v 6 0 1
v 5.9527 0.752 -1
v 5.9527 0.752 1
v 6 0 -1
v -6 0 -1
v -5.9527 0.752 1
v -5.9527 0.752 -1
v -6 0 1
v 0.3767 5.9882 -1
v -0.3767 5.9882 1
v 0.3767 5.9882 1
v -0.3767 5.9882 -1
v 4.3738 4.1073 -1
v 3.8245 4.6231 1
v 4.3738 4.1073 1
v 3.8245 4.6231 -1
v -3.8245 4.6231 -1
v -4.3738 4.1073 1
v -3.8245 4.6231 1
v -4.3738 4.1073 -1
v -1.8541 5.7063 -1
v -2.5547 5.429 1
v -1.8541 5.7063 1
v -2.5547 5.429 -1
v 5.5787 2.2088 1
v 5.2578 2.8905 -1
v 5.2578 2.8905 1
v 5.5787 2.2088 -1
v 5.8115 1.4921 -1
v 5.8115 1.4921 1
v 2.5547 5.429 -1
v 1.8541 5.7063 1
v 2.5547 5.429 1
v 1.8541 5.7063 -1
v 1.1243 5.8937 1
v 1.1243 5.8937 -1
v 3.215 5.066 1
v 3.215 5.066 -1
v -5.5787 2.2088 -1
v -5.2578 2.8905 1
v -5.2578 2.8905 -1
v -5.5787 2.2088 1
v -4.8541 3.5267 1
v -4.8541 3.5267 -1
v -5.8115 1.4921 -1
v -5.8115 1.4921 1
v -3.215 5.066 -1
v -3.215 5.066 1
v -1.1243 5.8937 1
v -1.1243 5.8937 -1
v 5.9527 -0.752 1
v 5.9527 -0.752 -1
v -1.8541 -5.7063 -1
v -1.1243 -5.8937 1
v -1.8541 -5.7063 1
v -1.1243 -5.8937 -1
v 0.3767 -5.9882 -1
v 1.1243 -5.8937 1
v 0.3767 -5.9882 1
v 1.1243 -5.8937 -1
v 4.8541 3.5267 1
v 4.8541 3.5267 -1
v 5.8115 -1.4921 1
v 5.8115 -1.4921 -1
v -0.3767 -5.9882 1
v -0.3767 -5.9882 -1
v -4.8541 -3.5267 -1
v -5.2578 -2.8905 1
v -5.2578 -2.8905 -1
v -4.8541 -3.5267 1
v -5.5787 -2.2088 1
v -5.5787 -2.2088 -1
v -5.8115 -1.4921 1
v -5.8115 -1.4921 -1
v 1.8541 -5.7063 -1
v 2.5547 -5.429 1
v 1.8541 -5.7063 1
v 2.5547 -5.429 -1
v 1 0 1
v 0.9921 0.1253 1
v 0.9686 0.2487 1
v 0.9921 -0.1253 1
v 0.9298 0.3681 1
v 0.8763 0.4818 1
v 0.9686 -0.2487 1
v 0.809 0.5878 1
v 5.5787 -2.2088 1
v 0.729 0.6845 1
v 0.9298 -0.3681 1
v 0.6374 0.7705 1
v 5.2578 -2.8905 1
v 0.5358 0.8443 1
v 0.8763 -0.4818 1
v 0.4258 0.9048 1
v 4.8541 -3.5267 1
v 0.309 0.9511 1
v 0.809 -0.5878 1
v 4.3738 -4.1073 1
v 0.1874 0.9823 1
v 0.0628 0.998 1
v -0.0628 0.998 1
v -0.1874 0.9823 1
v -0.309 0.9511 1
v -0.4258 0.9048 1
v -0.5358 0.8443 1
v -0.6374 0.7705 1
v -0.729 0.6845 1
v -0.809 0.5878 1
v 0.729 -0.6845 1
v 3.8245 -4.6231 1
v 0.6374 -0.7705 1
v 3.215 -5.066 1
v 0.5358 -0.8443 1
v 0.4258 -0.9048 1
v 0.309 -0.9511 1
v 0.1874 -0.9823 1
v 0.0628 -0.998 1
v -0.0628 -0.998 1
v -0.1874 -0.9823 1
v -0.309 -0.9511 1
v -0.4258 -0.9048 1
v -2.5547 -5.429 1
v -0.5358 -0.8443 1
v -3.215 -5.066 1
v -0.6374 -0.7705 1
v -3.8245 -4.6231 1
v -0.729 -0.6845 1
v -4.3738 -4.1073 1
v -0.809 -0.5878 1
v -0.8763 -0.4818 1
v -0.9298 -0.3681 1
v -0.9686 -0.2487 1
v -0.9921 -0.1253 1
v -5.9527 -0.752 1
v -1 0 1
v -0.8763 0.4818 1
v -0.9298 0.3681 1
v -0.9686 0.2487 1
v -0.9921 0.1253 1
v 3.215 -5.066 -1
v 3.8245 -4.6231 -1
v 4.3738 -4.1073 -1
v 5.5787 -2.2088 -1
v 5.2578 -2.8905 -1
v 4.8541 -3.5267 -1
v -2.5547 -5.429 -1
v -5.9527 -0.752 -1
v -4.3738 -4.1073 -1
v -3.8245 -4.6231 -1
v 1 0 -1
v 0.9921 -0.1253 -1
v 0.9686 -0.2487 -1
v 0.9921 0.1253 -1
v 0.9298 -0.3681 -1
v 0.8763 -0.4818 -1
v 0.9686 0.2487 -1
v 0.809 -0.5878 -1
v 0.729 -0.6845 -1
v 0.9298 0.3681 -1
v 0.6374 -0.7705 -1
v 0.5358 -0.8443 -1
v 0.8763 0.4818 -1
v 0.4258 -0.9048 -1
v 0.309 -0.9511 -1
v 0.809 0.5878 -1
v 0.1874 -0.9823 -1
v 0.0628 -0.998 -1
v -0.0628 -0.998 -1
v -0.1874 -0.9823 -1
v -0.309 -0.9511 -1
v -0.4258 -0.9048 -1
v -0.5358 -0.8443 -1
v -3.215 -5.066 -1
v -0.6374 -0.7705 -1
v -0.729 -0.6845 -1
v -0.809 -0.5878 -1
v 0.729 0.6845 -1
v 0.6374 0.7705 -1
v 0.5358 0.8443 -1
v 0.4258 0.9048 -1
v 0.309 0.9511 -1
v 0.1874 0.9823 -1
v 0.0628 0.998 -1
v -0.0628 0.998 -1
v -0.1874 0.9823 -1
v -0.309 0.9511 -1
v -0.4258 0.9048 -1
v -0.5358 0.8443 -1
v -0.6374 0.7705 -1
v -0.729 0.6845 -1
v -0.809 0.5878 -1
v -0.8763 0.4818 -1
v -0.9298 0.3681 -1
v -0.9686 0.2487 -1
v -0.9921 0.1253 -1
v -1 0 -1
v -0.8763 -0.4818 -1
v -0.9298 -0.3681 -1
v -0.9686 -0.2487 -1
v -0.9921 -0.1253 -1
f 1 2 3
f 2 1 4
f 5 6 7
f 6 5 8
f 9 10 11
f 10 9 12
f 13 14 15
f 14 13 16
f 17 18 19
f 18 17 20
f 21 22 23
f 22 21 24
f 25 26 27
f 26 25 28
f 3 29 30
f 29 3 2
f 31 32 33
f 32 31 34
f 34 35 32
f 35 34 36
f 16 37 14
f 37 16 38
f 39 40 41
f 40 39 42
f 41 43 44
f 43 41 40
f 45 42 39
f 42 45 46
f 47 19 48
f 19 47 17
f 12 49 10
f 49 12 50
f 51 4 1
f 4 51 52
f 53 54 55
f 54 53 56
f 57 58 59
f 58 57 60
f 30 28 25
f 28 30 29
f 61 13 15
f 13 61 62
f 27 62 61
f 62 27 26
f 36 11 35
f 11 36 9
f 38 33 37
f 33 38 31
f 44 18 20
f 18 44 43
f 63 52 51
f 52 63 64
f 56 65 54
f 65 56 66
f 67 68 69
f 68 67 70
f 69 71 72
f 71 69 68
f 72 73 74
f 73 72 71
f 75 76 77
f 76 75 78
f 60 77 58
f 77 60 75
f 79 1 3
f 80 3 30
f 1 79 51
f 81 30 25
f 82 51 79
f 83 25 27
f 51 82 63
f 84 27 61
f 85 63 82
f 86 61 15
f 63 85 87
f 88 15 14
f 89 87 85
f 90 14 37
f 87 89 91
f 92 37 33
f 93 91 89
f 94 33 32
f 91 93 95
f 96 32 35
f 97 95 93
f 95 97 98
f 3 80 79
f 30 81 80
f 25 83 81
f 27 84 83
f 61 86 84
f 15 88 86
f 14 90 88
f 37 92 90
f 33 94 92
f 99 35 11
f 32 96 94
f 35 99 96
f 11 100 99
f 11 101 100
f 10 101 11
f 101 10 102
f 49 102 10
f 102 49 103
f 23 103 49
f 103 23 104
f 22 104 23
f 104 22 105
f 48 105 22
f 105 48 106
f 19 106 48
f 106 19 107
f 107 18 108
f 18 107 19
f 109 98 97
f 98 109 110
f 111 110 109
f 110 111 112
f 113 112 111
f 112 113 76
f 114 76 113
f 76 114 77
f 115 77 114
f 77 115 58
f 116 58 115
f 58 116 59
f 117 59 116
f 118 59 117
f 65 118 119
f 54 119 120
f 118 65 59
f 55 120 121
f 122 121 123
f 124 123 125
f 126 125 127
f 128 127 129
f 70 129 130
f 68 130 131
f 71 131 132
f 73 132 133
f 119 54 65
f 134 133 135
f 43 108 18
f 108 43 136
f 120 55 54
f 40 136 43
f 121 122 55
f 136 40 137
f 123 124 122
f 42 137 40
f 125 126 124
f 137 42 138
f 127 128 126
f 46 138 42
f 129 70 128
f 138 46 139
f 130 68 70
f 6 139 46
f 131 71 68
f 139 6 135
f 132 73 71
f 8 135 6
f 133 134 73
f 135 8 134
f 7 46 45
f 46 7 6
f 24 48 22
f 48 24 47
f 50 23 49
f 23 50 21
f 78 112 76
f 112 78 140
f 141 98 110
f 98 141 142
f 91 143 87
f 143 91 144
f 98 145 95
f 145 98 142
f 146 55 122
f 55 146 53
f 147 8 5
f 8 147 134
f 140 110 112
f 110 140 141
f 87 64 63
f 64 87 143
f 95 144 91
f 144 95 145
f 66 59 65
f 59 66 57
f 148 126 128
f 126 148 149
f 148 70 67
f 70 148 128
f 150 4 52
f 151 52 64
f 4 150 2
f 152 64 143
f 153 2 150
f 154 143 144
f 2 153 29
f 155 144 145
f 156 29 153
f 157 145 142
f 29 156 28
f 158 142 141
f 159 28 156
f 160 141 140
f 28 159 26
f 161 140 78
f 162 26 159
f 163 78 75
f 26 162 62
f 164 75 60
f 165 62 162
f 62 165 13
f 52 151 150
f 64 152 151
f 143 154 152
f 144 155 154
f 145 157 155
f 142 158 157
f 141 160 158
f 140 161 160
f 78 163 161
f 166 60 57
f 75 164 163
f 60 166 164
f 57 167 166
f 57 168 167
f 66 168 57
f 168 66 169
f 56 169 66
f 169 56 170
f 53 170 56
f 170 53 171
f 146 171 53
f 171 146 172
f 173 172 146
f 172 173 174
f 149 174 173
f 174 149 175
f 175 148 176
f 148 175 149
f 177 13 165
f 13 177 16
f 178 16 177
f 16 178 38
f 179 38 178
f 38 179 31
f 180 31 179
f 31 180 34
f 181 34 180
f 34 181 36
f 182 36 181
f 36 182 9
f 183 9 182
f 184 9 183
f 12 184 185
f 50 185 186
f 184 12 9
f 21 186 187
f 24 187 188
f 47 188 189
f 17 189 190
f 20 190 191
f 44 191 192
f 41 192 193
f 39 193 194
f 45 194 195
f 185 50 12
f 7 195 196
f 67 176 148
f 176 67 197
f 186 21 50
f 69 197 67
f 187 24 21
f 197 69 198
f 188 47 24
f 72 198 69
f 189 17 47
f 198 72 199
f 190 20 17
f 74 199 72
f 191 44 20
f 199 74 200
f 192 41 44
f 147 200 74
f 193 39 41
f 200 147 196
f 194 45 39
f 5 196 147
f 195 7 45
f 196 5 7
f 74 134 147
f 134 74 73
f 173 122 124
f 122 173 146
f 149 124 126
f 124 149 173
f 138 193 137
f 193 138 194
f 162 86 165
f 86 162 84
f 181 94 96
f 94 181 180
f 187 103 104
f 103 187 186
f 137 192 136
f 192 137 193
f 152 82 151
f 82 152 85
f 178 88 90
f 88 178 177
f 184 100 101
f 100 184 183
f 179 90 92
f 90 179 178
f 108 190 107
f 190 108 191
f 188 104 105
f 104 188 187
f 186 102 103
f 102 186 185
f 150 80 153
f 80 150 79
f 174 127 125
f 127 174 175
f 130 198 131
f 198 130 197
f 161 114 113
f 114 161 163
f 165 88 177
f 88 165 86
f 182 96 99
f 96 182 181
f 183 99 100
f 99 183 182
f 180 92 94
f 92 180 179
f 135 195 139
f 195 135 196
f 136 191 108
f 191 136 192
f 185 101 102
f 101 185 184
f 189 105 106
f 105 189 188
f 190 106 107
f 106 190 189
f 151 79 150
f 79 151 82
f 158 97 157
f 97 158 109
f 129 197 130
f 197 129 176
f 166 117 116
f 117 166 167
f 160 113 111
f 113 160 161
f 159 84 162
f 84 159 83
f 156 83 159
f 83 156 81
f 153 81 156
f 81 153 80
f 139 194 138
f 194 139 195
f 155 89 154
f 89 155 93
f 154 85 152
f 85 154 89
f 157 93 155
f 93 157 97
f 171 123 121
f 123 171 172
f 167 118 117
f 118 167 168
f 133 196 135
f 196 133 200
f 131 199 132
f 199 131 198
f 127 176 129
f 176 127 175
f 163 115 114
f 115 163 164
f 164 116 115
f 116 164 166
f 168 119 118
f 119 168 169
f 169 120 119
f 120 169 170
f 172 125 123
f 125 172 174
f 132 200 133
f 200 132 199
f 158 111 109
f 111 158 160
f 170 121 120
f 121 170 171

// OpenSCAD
$fn = 50;


difference() {
	union() {
		translate(v = [0, 0, -1.0000000000]) {
			cylinder(h = 2, r = 6.0000000000);
		}
	}
	union() {
		translate(v = [0, 0, -100.0000000000]) {
			cylinder(h = 200, r = 1.0000000000);
		}
	}
}
